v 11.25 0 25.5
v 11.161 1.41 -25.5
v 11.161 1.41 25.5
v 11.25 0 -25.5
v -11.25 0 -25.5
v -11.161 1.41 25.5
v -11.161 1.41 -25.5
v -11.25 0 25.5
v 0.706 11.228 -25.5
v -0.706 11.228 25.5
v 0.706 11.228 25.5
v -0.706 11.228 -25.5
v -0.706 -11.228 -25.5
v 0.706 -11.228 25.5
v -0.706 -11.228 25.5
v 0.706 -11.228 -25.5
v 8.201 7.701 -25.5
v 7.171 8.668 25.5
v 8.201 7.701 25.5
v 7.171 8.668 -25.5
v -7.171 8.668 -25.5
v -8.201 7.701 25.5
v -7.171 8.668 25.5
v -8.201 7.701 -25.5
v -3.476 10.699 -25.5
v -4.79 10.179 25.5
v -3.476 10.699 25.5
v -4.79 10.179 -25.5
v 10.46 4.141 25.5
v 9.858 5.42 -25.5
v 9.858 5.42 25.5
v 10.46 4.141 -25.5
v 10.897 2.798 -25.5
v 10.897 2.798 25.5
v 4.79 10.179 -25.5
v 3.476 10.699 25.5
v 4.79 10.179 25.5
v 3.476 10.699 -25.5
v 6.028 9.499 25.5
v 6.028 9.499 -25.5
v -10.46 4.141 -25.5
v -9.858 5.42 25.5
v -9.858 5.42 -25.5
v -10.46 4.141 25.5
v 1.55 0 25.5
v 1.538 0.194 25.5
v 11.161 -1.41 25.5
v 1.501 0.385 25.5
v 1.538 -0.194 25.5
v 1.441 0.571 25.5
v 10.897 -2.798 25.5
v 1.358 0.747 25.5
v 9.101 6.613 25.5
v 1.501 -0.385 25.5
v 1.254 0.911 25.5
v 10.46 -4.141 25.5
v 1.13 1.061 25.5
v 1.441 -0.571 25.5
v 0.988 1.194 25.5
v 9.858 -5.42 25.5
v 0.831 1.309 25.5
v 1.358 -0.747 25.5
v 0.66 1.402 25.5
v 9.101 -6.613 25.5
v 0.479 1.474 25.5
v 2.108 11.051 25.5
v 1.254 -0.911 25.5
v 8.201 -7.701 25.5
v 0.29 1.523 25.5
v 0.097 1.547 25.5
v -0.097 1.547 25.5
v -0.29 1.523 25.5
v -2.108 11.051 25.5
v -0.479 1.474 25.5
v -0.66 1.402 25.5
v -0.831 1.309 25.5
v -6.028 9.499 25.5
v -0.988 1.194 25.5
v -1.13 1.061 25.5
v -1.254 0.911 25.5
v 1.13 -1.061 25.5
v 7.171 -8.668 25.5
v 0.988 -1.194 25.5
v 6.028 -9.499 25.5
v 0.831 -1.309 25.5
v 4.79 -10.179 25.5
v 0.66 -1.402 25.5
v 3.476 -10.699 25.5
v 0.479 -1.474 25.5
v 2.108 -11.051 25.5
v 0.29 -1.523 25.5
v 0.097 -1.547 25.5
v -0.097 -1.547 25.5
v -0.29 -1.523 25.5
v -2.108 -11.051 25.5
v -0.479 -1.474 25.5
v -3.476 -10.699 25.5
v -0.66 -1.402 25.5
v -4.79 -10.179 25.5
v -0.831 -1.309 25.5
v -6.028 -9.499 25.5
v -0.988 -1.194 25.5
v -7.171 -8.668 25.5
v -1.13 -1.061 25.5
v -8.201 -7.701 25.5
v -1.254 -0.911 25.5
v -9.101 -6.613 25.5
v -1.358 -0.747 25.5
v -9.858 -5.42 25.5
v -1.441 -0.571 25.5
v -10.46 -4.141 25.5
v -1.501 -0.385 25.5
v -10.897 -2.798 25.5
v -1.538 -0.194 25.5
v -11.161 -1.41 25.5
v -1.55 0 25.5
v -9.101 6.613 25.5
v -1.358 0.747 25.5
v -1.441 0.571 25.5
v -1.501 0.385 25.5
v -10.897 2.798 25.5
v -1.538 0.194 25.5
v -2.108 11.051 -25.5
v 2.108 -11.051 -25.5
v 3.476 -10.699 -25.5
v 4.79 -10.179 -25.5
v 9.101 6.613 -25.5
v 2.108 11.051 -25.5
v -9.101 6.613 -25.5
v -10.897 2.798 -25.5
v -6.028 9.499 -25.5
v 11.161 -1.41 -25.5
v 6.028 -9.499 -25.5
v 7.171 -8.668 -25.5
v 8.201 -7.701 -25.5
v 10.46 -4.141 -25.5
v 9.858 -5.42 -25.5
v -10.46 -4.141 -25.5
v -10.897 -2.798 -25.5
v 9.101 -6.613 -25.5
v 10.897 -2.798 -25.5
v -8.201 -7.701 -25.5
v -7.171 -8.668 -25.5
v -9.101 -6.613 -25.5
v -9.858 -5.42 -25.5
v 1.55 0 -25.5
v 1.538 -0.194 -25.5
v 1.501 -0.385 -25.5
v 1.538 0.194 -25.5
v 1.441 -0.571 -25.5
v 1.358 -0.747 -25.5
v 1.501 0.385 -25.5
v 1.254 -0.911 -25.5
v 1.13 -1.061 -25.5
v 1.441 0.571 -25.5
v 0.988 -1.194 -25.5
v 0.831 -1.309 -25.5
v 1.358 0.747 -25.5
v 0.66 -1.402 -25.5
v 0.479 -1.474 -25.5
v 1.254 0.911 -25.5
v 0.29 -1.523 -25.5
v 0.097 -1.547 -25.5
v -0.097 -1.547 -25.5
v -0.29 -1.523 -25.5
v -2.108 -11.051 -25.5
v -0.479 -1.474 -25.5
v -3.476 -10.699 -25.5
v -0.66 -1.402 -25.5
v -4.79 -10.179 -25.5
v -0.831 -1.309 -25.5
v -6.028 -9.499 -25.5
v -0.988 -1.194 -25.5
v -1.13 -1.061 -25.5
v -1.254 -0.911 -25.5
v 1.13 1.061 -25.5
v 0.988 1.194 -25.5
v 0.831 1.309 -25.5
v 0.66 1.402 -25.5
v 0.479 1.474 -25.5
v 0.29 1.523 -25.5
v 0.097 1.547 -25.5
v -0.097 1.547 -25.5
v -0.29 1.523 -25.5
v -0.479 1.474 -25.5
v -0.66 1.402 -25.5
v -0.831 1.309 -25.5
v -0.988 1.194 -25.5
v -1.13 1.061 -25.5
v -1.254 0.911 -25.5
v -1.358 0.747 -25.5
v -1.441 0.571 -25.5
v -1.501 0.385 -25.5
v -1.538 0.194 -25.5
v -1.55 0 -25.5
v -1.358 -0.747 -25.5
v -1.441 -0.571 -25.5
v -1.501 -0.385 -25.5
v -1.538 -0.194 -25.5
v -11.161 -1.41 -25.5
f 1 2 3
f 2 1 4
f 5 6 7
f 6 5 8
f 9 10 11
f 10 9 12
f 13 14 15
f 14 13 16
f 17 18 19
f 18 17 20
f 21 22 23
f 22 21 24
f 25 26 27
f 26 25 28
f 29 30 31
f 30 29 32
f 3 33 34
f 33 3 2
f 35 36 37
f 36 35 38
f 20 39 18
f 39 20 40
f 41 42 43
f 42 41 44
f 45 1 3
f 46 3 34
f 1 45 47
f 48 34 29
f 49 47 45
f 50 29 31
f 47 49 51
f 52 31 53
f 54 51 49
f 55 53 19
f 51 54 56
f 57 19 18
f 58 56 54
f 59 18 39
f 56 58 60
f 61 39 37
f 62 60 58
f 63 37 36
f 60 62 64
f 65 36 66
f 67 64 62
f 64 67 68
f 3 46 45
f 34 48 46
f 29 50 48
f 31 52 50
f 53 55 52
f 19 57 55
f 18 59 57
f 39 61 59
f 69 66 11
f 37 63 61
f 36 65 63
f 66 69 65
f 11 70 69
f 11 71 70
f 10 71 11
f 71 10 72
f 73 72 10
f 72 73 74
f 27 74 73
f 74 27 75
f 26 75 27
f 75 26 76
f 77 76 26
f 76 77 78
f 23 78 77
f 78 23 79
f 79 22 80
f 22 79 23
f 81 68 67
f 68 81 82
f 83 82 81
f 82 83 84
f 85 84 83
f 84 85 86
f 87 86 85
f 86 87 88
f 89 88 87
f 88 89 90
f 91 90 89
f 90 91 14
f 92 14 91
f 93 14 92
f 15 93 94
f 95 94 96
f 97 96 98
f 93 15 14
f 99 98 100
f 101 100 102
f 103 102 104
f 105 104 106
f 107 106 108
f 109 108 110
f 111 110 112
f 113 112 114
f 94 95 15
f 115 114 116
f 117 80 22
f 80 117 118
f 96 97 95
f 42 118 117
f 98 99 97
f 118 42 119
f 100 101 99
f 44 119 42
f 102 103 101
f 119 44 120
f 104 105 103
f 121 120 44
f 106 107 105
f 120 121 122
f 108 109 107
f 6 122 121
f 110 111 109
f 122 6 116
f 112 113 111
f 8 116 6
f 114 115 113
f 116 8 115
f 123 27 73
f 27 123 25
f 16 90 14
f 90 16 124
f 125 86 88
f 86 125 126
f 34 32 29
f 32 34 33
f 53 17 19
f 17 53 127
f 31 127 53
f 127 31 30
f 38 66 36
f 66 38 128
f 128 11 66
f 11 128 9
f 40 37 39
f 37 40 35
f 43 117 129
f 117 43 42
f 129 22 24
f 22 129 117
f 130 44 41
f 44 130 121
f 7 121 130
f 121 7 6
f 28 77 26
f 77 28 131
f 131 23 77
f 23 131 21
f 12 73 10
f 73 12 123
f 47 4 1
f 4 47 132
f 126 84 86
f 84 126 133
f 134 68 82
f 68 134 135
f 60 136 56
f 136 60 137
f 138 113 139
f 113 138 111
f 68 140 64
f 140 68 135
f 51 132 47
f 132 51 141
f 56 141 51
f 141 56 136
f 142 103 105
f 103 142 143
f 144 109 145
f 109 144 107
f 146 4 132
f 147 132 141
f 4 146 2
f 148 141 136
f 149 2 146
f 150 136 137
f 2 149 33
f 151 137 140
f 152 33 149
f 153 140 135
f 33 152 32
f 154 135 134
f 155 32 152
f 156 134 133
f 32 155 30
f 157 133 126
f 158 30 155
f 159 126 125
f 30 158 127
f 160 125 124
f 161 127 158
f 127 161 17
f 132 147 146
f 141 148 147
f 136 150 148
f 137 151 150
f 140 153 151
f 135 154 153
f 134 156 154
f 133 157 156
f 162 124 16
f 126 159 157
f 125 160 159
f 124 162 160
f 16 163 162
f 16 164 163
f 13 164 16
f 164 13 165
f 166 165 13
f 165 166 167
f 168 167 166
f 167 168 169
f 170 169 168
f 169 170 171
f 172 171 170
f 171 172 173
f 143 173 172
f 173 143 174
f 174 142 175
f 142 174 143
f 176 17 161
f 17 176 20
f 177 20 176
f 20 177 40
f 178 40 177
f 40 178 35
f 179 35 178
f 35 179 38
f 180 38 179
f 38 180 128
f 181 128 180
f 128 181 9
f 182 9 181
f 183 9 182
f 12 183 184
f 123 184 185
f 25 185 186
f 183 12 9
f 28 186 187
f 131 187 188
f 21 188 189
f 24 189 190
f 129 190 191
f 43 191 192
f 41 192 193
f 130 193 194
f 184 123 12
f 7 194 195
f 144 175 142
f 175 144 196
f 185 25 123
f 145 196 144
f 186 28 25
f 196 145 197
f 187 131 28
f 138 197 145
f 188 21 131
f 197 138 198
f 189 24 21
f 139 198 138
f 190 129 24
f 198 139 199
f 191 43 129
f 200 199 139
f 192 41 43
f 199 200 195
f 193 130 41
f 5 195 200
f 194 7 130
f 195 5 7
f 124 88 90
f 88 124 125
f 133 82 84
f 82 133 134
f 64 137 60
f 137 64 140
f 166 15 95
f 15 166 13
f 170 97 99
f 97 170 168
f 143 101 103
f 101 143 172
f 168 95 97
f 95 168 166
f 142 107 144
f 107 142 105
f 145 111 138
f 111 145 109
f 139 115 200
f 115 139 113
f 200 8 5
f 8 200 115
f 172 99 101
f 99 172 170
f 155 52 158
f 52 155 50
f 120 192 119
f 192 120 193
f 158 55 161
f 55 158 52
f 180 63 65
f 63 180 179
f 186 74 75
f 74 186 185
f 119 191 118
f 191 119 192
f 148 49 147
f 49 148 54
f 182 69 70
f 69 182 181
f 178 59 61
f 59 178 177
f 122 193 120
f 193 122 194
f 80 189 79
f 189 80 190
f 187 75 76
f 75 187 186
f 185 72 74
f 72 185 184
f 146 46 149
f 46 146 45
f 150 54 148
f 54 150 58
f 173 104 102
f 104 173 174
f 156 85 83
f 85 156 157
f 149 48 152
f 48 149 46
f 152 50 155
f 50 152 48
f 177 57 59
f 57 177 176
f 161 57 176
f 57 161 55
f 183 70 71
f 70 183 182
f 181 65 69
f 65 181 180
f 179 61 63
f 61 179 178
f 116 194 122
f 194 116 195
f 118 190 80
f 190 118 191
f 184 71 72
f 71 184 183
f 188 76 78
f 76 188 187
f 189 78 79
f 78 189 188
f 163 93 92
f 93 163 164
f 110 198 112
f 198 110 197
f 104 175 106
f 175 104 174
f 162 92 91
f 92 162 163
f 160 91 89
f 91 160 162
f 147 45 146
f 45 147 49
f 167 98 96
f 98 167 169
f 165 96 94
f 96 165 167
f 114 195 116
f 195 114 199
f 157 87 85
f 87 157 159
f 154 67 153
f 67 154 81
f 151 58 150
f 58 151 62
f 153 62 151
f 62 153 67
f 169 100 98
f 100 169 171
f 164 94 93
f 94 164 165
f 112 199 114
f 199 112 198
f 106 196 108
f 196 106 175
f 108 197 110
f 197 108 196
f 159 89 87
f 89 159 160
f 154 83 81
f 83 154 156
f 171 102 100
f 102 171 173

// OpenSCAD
$fn = 50;


difference() {
	union() {
		translate(v = [0, 0, -25.5000000000]) {
			cylinder(h = 51, r = 11.2500000000);
		}
	}
	union() {
		translate(v = [0, 0, -100.0000000000]) {
			cylinder(h = 200, r = 1.5500000000);
		}
	}
}
